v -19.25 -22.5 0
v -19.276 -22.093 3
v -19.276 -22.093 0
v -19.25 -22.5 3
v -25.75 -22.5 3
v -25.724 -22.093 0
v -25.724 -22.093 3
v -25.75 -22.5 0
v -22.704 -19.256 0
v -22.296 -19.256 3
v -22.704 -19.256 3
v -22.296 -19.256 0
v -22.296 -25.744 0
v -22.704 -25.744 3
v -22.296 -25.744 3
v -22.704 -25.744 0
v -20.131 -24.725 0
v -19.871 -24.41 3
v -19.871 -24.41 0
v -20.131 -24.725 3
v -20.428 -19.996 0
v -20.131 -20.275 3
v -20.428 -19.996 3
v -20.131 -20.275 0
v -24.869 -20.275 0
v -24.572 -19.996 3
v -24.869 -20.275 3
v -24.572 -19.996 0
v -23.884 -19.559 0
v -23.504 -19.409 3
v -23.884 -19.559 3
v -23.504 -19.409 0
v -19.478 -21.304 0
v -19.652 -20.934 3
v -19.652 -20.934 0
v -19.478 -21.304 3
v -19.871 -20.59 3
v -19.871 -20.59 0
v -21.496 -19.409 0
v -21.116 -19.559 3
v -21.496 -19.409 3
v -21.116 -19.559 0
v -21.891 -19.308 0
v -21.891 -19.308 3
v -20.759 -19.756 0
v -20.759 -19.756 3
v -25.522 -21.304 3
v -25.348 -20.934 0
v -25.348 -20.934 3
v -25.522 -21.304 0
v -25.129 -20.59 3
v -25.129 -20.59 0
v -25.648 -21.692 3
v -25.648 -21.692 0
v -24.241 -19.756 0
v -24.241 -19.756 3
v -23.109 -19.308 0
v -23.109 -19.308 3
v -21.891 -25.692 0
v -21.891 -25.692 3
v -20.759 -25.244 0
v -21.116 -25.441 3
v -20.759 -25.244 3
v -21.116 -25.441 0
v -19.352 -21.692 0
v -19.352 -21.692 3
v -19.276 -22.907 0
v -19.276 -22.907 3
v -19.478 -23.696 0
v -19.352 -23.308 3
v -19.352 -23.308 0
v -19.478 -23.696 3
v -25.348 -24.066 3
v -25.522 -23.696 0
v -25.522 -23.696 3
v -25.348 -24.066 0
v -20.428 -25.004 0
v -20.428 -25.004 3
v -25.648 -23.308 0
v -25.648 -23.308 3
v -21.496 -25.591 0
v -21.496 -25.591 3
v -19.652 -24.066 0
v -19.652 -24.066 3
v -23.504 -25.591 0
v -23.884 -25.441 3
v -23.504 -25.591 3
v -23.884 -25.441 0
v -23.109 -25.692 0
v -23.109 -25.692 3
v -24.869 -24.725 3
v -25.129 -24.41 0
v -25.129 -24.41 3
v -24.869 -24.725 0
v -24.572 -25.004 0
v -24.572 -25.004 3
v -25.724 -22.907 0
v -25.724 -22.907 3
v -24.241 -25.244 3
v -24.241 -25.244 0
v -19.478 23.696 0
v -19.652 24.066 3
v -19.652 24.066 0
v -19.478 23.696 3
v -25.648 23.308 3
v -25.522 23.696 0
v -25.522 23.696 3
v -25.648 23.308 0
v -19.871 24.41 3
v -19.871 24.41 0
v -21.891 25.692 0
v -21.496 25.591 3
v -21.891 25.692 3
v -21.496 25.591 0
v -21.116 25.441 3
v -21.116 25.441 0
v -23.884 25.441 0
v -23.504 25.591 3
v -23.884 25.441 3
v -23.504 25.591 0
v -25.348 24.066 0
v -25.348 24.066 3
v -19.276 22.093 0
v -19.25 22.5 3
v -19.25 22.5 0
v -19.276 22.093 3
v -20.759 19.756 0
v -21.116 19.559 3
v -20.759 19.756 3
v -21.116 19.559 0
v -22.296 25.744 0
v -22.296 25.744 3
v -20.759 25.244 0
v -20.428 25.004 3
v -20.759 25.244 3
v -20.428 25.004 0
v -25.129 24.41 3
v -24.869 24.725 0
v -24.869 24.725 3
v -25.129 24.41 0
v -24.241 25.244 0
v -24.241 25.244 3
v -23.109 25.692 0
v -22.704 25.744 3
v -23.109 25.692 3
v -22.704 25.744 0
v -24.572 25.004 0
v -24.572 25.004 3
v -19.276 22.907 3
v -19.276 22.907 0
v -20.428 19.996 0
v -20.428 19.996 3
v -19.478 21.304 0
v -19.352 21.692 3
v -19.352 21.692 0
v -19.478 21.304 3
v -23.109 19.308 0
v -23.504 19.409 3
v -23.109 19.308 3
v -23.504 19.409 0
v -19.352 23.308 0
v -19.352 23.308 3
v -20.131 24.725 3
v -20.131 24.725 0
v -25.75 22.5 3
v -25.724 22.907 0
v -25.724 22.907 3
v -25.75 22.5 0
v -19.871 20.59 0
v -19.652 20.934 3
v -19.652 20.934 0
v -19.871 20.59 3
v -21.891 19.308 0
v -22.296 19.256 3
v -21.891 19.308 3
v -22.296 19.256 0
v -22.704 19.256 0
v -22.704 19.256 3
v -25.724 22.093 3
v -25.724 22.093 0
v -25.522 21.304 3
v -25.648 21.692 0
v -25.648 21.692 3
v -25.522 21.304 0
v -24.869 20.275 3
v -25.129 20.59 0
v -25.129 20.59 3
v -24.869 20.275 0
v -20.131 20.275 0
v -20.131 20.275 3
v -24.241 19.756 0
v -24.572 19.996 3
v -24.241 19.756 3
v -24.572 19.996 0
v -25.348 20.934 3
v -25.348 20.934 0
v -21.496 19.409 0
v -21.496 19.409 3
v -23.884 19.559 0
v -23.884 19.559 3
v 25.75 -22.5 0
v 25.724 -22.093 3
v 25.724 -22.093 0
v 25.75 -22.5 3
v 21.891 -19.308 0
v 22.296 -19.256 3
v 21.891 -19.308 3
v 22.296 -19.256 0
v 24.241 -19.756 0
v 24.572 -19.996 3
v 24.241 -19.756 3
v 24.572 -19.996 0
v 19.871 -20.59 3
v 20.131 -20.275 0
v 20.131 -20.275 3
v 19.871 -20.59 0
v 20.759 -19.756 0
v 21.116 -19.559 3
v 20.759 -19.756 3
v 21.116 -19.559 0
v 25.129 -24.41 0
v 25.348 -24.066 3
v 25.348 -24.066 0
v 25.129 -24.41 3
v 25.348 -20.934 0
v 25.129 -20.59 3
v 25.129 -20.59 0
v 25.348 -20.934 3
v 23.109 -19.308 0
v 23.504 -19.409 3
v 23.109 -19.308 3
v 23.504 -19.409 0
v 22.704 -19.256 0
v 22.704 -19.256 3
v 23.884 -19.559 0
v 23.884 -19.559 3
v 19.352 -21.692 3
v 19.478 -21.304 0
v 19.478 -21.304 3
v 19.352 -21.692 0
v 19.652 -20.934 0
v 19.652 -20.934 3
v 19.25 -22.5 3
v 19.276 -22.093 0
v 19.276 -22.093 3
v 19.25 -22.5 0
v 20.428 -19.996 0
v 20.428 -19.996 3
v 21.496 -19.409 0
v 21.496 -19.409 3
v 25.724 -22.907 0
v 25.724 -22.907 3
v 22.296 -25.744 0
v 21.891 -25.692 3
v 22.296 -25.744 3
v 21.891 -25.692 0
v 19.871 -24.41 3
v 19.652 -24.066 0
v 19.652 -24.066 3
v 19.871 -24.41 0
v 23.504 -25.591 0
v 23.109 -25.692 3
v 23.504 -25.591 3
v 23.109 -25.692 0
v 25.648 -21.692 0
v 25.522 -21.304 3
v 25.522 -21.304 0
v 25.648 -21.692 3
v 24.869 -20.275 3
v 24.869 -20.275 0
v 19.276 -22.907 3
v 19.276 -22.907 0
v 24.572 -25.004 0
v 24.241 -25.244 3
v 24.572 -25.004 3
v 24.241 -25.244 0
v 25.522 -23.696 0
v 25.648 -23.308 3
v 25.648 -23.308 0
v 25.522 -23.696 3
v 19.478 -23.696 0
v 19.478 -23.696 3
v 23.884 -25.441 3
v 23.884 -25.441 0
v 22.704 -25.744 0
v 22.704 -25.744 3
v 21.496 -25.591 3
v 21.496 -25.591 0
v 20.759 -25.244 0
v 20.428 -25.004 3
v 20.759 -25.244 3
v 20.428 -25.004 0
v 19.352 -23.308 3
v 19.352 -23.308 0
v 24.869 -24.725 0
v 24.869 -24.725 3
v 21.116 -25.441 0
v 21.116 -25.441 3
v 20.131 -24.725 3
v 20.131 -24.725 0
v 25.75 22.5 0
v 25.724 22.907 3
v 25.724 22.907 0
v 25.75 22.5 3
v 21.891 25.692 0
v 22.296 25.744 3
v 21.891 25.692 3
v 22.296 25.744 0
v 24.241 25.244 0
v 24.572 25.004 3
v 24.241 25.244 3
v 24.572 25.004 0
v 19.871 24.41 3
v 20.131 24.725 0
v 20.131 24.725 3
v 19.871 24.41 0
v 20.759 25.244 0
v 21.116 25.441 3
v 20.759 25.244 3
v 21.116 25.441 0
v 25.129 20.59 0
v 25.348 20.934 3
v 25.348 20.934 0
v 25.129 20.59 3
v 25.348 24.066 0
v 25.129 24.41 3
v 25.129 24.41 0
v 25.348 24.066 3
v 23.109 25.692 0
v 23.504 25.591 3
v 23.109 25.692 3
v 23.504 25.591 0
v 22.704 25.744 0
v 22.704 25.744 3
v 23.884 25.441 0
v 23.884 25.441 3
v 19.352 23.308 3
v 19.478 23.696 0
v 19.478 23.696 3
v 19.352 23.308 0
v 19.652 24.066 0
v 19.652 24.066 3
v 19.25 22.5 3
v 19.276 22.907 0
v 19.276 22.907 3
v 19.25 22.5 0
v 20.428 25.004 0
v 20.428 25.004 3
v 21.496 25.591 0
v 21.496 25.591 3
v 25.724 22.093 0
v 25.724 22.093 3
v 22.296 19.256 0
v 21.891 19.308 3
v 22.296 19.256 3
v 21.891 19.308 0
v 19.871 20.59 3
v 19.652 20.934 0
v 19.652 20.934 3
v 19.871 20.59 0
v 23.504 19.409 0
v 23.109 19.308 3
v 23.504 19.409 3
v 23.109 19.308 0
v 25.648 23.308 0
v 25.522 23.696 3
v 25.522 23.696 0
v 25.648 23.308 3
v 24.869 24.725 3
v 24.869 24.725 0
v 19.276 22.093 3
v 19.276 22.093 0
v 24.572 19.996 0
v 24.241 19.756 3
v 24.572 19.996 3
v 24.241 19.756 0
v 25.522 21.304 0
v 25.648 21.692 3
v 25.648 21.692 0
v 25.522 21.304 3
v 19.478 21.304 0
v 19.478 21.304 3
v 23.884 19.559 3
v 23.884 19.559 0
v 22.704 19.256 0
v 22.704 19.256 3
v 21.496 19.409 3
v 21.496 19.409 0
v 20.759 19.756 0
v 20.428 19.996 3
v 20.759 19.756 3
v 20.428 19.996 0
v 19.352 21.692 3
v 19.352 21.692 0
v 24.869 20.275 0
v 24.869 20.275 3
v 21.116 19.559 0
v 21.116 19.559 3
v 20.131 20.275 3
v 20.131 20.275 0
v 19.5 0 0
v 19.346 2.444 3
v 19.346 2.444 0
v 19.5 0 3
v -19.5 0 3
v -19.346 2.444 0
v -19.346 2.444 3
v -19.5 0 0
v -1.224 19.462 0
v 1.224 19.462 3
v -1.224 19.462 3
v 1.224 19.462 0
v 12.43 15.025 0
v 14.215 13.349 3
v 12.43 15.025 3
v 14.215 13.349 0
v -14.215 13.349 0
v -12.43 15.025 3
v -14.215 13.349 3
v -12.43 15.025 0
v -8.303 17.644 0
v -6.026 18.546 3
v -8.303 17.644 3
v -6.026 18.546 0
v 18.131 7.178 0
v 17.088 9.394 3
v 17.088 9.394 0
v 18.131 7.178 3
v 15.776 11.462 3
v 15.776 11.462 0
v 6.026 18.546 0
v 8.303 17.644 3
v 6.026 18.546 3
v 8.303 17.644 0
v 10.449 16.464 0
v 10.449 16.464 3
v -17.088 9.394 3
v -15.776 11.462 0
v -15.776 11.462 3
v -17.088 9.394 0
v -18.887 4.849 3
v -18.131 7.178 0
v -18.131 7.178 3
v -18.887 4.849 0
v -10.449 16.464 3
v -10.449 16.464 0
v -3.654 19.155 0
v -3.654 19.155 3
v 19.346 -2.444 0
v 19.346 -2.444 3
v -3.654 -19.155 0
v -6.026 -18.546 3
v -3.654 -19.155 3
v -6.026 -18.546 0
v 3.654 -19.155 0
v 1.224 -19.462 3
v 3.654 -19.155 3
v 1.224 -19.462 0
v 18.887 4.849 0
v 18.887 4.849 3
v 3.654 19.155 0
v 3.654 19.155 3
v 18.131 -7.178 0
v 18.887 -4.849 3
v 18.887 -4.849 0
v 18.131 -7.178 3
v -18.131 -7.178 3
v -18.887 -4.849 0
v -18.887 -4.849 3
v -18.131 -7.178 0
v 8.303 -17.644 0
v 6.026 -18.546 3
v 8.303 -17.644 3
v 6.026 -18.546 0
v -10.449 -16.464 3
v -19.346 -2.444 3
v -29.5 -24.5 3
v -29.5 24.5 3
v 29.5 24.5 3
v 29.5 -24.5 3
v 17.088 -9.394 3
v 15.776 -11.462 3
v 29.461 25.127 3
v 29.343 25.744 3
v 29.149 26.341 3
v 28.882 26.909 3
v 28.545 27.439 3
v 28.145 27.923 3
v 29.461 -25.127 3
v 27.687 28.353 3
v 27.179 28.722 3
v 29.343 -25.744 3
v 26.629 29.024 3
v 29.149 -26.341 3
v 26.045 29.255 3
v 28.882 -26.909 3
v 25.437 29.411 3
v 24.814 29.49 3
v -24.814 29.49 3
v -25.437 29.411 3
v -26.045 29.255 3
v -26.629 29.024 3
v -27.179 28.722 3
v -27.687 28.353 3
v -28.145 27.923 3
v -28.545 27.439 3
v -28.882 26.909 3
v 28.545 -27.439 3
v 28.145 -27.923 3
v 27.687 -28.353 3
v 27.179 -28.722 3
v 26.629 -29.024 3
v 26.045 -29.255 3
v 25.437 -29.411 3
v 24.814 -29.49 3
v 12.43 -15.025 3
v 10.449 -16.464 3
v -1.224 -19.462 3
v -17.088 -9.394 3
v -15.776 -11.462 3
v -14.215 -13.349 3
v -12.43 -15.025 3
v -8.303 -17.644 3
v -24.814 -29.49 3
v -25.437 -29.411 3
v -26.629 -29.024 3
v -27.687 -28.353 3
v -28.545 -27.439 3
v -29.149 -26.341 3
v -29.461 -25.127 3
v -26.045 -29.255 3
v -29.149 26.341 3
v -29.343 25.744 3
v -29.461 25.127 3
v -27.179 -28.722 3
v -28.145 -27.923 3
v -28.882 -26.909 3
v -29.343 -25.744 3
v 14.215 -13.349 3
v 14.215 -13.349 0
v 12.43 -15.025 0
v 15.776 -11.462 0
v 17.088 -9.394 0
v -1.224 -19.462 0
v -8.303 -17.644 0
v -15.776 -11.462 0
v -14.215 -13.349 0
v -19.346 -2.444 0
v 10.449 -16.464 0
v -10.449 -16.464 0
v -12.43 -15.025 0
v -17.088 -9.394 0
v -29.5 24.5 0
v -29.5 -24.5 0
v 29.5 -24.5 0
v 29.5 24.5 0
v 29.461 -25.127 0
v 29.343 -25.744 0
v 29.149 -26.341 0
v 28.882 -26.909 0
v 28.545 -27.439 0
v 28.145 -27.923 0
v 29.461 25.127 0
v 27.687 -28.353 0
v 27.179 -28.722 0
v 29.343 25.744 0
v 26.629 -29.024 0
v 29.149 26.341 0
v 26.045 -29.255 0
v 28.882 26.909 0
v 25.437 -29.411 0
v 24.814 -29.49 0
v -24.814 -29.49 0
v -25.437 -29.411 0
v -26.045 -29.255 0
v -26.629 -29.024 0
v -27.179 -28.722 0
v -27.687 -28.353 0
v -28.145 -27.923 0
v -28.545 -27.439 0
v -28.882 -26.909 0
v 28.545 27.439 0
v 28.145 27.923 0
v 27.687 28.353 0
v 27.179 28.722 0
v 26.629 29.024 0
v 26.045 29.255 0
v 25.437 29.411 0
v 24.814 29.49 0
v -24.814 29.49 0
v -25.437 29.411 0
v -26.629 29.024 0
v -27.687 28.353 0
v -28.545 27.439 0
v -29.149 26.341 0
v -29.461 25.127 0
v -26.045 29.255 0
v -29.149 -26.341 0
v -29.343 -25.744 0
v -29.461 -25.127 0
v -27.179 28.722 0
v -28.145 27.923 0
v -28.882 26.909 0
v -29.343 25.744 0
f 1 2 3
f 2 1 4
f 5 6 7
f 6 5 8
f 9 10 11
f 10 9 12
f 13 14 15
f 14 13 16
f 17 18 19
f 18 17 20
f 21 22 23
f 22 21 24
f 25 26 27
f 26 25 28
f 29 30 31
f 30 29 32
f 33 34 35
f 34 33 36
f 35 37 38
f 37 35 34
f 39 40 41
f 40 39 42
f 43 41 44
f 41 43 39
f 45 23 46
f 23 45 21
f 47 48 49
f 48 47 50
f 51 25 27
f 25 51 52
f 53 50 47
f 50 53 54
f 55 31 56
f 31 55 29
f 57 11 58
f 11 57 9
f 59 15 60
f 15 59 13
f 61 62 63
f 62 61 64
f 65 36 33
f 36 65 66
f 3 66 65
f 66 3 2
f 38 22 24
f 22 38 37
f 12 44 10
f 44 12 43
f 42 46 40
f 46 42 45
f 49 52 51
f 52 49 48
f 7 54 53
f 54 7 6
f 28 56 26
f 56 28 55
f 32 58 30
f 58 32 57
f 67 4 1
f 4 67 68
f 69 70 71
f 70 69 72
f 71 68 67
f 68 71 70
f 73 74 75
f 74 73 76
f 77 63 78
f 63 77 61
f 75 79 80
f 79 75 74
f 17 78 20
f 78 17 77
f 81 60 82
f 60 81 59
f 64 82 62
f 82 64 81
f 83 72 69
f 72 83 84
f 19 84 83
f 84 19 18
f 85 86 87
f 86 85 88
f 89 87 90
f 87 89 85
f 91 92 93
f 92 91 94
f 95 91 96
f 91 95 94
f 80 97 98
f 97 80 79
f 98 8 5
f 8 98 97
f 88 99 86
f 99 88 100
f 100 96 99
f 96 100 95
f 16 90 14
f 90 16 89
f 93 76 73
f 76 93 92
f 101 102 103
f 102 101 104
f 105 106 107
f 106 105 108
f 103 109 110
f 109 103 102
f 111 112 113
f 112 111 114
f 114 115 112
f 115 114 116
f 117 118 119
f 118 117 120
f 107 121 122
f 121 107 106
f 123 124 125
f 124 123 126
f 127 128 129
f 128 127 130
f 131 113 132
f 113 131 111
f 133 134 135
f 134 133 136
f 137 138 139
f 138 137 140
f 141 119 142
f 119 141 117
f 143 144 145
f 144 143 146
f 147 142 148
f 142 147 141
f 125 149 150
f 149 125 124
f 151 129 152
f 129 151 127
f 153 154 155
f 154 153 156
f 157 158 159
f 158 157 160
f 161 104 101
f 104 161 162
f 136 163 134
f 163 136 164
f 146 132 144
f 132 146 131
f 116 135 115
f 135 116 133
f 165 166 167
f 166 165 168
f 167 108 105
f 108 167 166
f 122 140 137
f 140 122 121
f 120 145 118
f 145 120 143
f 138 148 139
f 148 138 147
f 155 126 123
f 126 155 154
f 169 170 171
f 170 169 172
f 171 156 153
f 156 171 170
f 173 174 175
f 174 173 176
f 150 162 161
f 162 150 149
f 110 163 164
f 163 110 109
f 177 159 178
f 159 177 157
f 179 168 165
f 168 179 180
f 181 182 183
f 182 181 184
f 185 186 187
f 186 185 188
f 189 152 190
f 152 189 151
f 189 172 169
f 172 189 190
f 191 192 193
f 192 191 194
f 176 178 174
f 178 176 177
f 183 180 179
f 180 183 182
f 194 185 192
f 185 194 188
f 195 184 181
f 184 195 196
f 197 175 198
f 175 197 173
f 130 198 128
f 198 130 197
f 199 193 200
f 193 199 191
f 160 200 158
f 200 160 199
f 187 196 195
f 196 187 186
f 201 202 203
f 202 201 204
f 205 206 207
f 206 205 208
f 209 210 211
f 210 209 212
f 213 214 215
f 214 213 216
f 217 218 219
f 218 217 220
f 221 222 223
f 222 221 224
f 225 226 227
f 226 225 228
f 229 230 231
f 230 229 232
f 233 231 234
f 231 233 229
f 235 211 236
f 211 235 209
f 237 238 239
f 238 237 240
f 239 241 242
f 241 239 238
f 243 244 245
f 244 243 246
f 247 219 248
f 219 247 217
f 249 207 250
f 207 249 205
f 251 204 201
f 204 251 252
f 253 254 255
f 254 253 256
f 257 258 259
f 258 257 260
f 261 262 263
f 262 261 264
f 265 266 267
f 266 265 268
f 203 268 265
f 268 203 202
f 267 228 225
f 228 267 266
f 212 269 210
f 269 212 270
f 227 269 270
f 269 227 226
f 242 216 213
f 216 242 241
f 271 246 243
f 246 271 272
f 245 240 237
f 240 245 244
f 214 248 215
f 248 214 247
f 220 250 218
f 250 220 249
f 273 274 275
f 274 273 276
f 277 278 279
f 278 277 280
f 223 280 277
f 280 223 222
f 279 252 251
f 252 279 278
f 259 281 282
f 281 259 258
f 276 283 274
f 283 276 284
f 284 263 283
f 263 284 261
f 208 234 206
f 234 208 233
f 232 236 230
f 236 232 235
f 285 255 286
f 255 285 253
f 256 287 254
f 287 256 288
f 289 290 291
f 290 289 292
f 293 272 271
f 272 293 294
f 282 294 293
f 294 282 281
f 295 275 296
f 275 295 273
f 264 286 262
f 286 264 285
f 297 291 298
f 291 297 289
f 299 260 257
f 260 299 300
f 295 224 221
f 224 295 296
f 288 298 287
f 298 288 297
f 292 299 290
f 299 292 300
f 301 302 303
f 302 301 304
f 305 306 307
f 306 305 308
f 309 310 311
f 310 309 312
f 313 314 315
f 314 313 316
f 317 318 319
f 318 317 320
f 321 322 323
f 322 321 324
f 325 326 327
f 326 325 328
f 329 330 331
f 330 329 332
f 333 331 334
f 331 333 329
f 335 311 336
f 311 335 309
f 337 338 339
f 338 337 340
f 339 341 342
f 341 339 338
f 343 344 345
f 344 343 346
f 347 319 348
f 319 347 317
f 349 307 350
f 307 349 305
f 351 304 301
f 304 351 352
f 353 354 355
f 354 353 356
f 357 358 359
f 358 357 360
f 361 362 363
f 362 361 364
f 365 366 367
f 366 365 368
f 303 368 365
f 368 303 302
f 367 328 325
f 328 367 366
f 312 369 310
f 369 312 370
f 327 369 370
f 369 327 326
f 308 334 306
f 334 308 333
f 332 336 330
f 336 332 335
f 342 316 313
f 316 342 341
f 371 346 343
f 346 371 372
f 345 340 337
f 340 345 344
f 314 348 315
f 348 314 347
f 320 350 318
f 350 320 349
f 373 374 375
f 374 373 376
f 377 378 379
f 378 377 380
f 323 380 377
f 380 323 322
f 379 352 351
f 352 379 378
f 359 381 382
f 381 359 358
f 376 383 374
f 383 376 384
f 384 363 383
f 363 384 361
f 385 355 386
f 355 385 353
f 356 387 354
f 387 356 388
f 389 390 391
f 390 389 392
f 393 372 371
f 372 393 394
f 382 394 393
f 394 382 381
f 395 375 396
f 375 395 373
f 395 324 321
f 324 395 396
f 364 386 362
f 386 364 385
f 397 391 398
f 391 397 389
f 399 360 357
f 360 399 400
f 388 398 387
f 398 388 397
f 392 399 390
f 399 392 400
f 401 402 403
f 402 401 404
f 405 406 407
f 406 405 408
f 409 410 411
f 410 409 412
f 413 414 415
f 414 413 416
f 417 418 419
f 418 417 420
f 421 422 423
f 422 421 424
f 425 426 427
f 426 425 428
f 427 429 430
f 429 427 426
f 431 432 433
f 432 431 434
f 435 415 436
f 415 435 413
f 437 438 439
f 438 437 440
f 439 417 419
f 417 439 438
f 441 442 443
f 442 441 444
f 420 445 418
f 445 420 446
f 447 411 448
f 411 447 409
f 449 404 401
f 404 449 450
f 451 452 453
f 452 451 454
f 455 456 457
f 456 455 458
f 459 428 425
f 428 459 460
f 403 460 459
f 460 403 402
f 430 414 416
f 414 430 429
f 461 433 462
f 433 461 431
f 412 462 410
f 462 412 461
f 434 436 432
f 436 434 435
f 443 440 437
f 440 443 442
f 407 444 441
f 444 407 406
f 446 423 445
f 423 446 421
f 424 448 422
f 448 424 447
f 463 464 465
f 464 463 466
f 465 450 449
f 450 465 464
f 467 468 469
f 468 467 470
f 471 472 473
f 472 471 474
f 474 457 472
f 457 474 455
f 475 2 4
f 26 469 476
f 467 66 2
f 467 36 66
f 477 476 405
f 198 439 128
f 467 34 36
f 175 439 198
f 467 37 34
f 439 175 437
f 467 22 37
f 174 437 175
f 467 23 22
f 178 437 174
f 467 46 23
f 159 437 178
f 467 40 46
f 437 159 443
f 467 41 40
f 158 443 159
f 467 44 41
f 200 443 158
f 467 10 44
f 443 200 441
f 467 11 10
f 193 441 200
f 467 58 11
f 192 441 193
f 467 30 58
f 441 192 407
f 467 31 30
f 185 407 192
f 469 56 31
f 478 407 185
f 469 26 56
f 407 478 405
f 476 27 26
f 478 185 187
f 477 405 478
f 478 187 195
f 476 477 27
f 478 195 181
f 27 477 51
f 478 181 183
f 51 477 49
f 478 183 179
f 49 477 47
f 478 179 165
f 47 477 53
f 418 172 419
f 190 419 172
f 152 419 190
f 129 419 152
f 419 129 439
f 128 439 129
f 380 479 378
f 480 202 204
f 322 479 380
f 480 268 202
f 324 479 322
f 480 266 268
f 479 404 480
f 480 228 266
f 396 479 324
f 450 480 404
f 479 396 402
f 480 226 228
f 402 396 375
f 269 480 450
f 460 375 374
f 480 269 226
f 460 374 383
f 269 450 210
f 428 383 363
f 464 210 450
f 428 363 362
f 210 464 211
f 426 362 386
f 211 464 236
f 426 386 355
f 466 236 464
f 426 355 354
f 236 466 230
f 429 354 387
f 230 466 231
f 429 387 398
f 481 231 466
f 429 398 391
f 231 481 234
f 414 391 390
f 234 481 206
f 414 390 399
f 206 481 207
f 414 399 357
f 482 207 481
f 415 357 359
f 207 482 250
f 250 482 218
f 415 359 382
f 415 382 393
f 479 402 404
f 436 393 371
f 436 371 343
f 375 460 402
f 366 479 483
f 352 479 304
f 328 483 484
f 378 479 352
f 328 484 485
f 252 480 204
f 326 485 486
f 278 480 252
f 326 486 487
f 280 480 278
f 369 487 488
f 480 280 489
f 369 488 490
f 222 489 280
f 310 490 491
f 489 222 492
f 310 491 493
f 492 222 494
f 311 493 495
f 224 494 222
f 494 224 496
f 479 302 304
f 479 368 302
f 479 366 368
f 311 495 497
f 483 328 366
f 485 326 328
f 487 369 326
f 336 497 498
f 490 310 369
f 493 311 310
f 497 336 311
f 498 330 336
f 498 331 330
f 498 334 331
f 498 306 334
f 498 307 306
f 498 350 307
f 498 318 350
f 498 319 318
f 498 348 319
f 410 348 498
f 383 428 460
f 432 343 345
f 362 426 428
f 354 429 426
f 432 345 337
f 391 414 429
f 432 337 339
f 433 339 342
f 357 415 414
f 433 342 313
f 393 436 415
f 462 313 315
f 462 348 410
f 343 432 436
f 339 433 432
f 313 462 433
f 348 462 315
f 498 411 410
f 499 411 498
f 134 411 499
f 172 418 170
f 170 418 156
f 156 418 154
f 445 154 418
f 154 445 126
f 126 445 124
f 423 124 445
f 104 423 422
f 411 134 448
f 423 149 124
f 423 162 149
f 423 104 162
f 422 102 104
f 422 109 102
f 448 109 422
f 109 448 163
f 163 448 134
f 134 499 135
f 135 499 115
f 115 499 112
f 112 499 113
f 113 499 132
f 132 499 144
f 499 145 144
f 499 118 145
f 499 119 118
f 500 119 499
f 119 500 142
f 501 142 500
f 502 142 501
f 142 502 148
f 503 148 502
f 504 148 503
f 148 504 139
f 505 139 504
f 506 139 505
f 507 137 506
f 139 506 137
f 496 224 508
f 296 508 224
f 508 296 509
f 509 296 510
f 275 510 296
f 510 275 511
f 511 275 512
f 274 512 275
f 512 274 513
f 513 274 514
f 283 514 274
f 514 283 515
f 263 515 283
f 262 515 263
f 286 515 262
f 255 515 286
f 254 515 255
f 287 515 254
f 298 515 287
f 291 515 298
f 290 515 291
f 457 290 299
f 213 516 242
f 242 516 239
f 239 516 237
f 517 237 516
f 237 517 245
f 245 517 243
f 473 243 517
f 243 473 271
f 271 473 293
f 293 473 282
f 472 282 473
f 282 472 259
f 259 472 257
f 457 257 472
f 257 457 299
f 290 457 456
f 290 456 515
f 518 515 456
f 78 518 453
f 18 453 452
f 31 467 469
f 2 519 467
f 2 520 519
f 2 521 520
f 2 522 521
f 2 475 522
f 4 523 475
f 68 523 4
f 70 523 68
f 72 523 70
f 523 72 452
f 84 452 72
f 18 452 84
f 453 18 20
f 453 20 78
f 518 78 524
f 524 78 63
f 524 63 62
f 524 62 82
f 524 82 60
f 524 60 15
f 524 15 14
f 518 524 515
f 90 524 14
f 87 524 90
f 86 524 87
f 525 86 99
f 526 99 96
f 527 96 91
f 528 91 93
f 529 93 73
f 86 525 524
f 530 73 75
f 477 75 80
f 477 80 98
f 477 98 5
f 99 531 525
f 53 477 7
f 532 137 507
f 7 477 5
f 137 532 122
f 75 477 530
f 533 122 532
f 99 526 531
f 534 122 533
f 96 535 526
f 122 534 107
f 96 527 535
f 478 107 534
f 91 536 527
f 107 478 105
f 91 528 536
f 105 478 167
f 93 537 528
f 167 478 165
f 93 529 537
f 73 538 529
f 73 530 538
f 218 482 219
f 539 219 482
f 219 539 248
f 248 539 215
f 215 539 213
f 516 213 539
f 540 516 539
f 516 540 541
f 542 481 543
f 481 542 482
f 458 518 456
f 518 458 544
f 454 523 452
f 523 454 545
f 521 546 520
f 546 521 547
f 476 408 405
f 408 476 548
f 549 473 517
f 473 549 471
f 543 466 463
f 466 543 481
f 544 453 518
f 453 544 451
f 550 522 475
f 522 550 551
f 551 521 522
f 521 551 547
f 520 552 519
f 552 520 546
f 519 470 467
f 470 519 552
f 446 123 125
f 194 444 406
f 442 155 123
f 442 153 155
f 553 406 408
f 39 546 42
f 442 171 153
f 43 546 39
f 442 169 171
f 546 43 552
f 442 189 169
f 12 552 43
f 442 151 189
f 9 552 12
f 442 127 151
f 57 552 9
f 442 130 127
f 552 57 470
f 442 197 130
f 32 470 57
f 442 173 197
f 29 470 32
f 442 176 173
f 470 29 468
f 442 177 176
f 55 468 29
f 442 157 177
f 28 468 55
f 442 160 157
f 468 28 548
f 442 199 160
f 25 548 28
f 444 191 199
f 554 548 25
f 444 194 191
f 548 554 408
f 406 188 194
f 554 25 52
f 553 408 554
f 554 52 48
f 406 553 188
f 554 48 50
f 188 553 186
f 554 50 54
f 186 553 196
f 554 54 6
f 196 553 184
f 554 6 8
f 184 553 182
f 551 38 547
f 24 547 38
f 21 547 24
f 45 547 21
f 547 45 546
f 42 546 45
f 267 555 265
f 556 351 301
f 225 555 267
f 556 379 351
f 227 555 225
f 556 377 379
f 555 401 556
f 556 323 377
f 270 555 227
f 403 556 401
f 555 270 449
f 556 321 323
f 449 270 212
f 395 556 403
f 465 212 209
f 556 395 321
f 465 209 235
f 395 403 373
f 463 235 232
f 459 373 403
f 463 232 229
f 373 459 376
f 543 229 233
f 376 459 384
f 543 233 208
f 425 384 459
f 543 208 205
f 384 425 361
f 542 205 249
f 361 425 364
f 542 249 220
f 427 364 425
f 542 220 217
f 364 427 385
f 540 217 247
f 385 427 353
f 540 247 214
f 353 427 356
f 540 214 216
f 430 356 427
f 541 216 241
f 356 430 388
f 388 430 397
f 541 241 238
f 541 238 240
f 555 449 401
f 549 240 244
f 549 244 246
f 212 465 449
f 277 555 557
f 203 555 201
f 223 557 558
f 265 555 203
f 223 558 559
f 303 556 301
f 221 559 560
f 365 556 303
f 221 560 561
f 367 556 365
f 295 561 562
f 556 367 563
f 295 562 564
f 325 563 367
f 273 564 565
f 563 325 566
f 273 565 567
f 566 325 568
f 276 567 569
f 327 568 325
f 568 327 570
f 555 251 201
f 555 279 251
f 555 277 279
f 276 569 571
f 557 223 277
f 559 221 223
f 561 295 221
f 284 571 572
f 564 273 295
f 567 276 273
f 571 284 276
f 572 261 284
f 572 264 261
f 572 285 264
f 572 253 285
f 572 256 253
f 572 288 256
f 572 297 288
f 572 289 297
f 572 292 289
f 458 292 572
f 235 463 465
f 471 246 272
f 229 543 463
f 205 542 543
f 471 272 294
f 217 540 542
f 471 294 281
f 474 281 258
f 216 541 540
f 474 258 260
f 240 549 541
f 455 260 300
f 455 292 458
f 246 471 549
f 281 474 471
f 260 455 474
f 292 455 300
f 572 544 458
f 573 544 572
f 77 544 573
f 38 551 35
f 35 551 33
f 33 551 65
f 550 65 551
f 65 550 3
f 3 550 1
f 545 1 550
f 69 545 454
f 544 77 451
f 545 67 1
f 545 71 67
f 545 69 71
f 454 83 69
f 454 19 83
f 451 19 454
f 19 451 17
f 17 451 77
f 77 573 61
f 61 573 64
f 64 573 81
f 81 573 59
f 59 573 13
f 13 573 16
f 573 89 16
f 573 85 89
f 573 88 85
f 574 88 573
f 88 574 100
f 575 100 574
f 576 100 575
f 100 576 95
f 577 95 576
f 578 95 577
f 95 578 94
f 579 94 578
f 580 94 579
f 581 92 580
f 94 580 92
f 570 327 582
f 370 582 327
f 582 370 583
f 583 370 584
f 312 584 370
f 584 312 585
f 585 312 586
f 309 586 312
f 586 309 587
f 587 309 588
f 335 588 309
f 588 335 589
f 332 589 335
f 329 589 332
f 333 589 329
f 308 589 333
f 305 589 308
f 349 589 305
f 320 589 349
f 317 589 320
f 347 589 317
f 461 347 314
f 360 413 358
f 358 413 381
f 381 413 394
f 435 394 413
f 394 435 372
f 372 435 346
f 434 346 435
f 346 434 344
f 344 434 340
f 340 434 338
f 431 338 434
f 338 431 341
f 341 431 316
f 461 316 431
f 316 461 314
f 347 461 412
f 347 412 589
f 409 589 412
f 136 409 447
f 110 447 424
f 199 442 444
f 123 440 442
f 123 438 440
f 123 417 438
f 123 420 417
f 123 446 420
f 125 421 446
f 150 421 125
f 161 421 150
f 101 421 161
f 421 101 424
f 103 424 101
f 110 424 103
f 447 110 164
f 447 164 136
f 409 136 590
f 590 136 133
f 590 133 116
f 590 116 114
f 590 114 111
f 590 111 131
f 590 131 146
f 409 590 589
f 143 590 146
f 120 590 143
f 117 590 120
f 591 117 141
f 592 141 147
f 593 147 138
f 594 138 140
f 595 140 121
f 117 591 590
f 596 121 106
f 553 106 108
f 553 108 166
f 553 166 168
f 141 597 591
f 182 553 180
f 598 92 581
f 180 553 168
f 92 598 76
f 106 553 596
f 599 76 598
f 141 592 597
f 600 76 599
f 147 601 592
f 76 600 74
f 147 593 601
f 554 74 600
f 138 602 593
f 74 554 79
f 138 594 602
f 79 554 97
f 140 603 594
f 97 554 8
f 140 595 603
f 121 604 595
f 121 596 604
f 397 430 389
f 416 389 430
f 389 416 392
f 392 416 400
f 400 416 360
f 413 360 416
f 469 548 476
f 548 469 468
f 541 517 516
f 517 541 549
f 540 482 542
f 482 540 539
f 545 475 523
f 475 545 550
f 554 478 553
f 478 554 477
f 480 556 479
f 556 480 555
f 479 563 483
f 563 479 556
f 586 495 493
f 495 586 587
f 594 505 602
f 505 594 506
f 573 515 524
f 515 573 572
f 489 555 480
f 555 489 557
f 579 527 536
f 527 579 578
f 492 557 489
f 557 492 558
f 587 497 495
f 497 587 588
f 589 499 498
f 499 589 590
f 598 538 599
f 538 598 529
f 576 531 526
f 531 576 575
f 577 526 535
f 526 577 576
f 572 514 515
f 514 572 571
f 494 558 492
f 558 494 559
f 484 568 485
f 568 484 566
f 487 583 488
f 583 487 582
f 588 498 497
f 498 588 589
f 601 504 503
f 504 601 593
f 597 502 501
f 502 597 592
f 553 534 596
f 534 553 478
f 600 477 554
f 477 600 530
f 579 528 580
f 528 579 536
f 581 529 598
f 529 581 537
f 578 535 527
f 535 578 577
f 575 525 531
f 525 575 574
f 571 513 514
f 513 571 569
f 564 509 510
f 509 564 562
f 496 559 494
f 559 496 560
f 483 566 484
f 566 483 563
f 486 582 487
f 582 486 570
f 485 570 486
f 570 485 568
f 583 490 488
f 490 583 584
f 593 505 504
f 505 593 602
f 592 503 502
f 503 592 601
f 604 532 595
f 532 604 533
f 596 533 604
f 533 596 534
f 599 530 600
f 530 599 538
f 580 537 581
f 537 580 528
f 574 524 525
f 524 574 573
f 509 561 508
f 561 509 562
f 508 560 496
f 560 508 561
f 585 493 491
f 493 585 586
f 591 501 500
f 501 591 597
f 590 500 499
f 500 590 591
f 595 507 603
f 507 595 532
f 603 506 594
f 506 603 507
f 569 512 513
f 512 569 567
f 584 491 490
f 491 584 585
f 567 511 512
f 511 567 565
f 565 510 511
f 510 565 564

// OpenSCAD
$fn = 50;


difference() {
	union() {
		hull() {
			translate(v = [-24.5000000000, 24.5000000000, 0]) {
				cylinder(h = 3, r = 5);
			}
			translate(v = [24.5000000000, 24.5000000000, 0]) {
				cylinder(h = 3, r = 5);
			}
			translate(v = [-24.5000000000, -24.5000000000, 0]) {
				cylinder(h = 3, r = 5);
			}
			translate(v = [24.5000000000, -24.5000000000, 0]) {
				cylinder(h = 3, r = 5);
			}
		}
	}
	union() {
		#translate(v = [-22.5000000000, -22.5000000000, -100.0000000000]) {
			cylinder(h = 200, r = 3.2500000000);
		}
		#translate(v = [-22.5000000000, 22.5000000000, -100.0000000000]) {
			cylinder(h = 200, r = 3.2500000000);
		}
		#translate(v = [22.5000000000, -22.5000000000, -100.0000000000]) {
			cylinder(h = 200, r = 3.2500000000);
		}
		#translate(v = [22.5000000000, 22.5000000000, -100.0000000000]) {
			cylinder(h = 200, r = 3.2500000000);
		}
		#cylinder(h = 3, r = 19.5000000000);
	}
}
